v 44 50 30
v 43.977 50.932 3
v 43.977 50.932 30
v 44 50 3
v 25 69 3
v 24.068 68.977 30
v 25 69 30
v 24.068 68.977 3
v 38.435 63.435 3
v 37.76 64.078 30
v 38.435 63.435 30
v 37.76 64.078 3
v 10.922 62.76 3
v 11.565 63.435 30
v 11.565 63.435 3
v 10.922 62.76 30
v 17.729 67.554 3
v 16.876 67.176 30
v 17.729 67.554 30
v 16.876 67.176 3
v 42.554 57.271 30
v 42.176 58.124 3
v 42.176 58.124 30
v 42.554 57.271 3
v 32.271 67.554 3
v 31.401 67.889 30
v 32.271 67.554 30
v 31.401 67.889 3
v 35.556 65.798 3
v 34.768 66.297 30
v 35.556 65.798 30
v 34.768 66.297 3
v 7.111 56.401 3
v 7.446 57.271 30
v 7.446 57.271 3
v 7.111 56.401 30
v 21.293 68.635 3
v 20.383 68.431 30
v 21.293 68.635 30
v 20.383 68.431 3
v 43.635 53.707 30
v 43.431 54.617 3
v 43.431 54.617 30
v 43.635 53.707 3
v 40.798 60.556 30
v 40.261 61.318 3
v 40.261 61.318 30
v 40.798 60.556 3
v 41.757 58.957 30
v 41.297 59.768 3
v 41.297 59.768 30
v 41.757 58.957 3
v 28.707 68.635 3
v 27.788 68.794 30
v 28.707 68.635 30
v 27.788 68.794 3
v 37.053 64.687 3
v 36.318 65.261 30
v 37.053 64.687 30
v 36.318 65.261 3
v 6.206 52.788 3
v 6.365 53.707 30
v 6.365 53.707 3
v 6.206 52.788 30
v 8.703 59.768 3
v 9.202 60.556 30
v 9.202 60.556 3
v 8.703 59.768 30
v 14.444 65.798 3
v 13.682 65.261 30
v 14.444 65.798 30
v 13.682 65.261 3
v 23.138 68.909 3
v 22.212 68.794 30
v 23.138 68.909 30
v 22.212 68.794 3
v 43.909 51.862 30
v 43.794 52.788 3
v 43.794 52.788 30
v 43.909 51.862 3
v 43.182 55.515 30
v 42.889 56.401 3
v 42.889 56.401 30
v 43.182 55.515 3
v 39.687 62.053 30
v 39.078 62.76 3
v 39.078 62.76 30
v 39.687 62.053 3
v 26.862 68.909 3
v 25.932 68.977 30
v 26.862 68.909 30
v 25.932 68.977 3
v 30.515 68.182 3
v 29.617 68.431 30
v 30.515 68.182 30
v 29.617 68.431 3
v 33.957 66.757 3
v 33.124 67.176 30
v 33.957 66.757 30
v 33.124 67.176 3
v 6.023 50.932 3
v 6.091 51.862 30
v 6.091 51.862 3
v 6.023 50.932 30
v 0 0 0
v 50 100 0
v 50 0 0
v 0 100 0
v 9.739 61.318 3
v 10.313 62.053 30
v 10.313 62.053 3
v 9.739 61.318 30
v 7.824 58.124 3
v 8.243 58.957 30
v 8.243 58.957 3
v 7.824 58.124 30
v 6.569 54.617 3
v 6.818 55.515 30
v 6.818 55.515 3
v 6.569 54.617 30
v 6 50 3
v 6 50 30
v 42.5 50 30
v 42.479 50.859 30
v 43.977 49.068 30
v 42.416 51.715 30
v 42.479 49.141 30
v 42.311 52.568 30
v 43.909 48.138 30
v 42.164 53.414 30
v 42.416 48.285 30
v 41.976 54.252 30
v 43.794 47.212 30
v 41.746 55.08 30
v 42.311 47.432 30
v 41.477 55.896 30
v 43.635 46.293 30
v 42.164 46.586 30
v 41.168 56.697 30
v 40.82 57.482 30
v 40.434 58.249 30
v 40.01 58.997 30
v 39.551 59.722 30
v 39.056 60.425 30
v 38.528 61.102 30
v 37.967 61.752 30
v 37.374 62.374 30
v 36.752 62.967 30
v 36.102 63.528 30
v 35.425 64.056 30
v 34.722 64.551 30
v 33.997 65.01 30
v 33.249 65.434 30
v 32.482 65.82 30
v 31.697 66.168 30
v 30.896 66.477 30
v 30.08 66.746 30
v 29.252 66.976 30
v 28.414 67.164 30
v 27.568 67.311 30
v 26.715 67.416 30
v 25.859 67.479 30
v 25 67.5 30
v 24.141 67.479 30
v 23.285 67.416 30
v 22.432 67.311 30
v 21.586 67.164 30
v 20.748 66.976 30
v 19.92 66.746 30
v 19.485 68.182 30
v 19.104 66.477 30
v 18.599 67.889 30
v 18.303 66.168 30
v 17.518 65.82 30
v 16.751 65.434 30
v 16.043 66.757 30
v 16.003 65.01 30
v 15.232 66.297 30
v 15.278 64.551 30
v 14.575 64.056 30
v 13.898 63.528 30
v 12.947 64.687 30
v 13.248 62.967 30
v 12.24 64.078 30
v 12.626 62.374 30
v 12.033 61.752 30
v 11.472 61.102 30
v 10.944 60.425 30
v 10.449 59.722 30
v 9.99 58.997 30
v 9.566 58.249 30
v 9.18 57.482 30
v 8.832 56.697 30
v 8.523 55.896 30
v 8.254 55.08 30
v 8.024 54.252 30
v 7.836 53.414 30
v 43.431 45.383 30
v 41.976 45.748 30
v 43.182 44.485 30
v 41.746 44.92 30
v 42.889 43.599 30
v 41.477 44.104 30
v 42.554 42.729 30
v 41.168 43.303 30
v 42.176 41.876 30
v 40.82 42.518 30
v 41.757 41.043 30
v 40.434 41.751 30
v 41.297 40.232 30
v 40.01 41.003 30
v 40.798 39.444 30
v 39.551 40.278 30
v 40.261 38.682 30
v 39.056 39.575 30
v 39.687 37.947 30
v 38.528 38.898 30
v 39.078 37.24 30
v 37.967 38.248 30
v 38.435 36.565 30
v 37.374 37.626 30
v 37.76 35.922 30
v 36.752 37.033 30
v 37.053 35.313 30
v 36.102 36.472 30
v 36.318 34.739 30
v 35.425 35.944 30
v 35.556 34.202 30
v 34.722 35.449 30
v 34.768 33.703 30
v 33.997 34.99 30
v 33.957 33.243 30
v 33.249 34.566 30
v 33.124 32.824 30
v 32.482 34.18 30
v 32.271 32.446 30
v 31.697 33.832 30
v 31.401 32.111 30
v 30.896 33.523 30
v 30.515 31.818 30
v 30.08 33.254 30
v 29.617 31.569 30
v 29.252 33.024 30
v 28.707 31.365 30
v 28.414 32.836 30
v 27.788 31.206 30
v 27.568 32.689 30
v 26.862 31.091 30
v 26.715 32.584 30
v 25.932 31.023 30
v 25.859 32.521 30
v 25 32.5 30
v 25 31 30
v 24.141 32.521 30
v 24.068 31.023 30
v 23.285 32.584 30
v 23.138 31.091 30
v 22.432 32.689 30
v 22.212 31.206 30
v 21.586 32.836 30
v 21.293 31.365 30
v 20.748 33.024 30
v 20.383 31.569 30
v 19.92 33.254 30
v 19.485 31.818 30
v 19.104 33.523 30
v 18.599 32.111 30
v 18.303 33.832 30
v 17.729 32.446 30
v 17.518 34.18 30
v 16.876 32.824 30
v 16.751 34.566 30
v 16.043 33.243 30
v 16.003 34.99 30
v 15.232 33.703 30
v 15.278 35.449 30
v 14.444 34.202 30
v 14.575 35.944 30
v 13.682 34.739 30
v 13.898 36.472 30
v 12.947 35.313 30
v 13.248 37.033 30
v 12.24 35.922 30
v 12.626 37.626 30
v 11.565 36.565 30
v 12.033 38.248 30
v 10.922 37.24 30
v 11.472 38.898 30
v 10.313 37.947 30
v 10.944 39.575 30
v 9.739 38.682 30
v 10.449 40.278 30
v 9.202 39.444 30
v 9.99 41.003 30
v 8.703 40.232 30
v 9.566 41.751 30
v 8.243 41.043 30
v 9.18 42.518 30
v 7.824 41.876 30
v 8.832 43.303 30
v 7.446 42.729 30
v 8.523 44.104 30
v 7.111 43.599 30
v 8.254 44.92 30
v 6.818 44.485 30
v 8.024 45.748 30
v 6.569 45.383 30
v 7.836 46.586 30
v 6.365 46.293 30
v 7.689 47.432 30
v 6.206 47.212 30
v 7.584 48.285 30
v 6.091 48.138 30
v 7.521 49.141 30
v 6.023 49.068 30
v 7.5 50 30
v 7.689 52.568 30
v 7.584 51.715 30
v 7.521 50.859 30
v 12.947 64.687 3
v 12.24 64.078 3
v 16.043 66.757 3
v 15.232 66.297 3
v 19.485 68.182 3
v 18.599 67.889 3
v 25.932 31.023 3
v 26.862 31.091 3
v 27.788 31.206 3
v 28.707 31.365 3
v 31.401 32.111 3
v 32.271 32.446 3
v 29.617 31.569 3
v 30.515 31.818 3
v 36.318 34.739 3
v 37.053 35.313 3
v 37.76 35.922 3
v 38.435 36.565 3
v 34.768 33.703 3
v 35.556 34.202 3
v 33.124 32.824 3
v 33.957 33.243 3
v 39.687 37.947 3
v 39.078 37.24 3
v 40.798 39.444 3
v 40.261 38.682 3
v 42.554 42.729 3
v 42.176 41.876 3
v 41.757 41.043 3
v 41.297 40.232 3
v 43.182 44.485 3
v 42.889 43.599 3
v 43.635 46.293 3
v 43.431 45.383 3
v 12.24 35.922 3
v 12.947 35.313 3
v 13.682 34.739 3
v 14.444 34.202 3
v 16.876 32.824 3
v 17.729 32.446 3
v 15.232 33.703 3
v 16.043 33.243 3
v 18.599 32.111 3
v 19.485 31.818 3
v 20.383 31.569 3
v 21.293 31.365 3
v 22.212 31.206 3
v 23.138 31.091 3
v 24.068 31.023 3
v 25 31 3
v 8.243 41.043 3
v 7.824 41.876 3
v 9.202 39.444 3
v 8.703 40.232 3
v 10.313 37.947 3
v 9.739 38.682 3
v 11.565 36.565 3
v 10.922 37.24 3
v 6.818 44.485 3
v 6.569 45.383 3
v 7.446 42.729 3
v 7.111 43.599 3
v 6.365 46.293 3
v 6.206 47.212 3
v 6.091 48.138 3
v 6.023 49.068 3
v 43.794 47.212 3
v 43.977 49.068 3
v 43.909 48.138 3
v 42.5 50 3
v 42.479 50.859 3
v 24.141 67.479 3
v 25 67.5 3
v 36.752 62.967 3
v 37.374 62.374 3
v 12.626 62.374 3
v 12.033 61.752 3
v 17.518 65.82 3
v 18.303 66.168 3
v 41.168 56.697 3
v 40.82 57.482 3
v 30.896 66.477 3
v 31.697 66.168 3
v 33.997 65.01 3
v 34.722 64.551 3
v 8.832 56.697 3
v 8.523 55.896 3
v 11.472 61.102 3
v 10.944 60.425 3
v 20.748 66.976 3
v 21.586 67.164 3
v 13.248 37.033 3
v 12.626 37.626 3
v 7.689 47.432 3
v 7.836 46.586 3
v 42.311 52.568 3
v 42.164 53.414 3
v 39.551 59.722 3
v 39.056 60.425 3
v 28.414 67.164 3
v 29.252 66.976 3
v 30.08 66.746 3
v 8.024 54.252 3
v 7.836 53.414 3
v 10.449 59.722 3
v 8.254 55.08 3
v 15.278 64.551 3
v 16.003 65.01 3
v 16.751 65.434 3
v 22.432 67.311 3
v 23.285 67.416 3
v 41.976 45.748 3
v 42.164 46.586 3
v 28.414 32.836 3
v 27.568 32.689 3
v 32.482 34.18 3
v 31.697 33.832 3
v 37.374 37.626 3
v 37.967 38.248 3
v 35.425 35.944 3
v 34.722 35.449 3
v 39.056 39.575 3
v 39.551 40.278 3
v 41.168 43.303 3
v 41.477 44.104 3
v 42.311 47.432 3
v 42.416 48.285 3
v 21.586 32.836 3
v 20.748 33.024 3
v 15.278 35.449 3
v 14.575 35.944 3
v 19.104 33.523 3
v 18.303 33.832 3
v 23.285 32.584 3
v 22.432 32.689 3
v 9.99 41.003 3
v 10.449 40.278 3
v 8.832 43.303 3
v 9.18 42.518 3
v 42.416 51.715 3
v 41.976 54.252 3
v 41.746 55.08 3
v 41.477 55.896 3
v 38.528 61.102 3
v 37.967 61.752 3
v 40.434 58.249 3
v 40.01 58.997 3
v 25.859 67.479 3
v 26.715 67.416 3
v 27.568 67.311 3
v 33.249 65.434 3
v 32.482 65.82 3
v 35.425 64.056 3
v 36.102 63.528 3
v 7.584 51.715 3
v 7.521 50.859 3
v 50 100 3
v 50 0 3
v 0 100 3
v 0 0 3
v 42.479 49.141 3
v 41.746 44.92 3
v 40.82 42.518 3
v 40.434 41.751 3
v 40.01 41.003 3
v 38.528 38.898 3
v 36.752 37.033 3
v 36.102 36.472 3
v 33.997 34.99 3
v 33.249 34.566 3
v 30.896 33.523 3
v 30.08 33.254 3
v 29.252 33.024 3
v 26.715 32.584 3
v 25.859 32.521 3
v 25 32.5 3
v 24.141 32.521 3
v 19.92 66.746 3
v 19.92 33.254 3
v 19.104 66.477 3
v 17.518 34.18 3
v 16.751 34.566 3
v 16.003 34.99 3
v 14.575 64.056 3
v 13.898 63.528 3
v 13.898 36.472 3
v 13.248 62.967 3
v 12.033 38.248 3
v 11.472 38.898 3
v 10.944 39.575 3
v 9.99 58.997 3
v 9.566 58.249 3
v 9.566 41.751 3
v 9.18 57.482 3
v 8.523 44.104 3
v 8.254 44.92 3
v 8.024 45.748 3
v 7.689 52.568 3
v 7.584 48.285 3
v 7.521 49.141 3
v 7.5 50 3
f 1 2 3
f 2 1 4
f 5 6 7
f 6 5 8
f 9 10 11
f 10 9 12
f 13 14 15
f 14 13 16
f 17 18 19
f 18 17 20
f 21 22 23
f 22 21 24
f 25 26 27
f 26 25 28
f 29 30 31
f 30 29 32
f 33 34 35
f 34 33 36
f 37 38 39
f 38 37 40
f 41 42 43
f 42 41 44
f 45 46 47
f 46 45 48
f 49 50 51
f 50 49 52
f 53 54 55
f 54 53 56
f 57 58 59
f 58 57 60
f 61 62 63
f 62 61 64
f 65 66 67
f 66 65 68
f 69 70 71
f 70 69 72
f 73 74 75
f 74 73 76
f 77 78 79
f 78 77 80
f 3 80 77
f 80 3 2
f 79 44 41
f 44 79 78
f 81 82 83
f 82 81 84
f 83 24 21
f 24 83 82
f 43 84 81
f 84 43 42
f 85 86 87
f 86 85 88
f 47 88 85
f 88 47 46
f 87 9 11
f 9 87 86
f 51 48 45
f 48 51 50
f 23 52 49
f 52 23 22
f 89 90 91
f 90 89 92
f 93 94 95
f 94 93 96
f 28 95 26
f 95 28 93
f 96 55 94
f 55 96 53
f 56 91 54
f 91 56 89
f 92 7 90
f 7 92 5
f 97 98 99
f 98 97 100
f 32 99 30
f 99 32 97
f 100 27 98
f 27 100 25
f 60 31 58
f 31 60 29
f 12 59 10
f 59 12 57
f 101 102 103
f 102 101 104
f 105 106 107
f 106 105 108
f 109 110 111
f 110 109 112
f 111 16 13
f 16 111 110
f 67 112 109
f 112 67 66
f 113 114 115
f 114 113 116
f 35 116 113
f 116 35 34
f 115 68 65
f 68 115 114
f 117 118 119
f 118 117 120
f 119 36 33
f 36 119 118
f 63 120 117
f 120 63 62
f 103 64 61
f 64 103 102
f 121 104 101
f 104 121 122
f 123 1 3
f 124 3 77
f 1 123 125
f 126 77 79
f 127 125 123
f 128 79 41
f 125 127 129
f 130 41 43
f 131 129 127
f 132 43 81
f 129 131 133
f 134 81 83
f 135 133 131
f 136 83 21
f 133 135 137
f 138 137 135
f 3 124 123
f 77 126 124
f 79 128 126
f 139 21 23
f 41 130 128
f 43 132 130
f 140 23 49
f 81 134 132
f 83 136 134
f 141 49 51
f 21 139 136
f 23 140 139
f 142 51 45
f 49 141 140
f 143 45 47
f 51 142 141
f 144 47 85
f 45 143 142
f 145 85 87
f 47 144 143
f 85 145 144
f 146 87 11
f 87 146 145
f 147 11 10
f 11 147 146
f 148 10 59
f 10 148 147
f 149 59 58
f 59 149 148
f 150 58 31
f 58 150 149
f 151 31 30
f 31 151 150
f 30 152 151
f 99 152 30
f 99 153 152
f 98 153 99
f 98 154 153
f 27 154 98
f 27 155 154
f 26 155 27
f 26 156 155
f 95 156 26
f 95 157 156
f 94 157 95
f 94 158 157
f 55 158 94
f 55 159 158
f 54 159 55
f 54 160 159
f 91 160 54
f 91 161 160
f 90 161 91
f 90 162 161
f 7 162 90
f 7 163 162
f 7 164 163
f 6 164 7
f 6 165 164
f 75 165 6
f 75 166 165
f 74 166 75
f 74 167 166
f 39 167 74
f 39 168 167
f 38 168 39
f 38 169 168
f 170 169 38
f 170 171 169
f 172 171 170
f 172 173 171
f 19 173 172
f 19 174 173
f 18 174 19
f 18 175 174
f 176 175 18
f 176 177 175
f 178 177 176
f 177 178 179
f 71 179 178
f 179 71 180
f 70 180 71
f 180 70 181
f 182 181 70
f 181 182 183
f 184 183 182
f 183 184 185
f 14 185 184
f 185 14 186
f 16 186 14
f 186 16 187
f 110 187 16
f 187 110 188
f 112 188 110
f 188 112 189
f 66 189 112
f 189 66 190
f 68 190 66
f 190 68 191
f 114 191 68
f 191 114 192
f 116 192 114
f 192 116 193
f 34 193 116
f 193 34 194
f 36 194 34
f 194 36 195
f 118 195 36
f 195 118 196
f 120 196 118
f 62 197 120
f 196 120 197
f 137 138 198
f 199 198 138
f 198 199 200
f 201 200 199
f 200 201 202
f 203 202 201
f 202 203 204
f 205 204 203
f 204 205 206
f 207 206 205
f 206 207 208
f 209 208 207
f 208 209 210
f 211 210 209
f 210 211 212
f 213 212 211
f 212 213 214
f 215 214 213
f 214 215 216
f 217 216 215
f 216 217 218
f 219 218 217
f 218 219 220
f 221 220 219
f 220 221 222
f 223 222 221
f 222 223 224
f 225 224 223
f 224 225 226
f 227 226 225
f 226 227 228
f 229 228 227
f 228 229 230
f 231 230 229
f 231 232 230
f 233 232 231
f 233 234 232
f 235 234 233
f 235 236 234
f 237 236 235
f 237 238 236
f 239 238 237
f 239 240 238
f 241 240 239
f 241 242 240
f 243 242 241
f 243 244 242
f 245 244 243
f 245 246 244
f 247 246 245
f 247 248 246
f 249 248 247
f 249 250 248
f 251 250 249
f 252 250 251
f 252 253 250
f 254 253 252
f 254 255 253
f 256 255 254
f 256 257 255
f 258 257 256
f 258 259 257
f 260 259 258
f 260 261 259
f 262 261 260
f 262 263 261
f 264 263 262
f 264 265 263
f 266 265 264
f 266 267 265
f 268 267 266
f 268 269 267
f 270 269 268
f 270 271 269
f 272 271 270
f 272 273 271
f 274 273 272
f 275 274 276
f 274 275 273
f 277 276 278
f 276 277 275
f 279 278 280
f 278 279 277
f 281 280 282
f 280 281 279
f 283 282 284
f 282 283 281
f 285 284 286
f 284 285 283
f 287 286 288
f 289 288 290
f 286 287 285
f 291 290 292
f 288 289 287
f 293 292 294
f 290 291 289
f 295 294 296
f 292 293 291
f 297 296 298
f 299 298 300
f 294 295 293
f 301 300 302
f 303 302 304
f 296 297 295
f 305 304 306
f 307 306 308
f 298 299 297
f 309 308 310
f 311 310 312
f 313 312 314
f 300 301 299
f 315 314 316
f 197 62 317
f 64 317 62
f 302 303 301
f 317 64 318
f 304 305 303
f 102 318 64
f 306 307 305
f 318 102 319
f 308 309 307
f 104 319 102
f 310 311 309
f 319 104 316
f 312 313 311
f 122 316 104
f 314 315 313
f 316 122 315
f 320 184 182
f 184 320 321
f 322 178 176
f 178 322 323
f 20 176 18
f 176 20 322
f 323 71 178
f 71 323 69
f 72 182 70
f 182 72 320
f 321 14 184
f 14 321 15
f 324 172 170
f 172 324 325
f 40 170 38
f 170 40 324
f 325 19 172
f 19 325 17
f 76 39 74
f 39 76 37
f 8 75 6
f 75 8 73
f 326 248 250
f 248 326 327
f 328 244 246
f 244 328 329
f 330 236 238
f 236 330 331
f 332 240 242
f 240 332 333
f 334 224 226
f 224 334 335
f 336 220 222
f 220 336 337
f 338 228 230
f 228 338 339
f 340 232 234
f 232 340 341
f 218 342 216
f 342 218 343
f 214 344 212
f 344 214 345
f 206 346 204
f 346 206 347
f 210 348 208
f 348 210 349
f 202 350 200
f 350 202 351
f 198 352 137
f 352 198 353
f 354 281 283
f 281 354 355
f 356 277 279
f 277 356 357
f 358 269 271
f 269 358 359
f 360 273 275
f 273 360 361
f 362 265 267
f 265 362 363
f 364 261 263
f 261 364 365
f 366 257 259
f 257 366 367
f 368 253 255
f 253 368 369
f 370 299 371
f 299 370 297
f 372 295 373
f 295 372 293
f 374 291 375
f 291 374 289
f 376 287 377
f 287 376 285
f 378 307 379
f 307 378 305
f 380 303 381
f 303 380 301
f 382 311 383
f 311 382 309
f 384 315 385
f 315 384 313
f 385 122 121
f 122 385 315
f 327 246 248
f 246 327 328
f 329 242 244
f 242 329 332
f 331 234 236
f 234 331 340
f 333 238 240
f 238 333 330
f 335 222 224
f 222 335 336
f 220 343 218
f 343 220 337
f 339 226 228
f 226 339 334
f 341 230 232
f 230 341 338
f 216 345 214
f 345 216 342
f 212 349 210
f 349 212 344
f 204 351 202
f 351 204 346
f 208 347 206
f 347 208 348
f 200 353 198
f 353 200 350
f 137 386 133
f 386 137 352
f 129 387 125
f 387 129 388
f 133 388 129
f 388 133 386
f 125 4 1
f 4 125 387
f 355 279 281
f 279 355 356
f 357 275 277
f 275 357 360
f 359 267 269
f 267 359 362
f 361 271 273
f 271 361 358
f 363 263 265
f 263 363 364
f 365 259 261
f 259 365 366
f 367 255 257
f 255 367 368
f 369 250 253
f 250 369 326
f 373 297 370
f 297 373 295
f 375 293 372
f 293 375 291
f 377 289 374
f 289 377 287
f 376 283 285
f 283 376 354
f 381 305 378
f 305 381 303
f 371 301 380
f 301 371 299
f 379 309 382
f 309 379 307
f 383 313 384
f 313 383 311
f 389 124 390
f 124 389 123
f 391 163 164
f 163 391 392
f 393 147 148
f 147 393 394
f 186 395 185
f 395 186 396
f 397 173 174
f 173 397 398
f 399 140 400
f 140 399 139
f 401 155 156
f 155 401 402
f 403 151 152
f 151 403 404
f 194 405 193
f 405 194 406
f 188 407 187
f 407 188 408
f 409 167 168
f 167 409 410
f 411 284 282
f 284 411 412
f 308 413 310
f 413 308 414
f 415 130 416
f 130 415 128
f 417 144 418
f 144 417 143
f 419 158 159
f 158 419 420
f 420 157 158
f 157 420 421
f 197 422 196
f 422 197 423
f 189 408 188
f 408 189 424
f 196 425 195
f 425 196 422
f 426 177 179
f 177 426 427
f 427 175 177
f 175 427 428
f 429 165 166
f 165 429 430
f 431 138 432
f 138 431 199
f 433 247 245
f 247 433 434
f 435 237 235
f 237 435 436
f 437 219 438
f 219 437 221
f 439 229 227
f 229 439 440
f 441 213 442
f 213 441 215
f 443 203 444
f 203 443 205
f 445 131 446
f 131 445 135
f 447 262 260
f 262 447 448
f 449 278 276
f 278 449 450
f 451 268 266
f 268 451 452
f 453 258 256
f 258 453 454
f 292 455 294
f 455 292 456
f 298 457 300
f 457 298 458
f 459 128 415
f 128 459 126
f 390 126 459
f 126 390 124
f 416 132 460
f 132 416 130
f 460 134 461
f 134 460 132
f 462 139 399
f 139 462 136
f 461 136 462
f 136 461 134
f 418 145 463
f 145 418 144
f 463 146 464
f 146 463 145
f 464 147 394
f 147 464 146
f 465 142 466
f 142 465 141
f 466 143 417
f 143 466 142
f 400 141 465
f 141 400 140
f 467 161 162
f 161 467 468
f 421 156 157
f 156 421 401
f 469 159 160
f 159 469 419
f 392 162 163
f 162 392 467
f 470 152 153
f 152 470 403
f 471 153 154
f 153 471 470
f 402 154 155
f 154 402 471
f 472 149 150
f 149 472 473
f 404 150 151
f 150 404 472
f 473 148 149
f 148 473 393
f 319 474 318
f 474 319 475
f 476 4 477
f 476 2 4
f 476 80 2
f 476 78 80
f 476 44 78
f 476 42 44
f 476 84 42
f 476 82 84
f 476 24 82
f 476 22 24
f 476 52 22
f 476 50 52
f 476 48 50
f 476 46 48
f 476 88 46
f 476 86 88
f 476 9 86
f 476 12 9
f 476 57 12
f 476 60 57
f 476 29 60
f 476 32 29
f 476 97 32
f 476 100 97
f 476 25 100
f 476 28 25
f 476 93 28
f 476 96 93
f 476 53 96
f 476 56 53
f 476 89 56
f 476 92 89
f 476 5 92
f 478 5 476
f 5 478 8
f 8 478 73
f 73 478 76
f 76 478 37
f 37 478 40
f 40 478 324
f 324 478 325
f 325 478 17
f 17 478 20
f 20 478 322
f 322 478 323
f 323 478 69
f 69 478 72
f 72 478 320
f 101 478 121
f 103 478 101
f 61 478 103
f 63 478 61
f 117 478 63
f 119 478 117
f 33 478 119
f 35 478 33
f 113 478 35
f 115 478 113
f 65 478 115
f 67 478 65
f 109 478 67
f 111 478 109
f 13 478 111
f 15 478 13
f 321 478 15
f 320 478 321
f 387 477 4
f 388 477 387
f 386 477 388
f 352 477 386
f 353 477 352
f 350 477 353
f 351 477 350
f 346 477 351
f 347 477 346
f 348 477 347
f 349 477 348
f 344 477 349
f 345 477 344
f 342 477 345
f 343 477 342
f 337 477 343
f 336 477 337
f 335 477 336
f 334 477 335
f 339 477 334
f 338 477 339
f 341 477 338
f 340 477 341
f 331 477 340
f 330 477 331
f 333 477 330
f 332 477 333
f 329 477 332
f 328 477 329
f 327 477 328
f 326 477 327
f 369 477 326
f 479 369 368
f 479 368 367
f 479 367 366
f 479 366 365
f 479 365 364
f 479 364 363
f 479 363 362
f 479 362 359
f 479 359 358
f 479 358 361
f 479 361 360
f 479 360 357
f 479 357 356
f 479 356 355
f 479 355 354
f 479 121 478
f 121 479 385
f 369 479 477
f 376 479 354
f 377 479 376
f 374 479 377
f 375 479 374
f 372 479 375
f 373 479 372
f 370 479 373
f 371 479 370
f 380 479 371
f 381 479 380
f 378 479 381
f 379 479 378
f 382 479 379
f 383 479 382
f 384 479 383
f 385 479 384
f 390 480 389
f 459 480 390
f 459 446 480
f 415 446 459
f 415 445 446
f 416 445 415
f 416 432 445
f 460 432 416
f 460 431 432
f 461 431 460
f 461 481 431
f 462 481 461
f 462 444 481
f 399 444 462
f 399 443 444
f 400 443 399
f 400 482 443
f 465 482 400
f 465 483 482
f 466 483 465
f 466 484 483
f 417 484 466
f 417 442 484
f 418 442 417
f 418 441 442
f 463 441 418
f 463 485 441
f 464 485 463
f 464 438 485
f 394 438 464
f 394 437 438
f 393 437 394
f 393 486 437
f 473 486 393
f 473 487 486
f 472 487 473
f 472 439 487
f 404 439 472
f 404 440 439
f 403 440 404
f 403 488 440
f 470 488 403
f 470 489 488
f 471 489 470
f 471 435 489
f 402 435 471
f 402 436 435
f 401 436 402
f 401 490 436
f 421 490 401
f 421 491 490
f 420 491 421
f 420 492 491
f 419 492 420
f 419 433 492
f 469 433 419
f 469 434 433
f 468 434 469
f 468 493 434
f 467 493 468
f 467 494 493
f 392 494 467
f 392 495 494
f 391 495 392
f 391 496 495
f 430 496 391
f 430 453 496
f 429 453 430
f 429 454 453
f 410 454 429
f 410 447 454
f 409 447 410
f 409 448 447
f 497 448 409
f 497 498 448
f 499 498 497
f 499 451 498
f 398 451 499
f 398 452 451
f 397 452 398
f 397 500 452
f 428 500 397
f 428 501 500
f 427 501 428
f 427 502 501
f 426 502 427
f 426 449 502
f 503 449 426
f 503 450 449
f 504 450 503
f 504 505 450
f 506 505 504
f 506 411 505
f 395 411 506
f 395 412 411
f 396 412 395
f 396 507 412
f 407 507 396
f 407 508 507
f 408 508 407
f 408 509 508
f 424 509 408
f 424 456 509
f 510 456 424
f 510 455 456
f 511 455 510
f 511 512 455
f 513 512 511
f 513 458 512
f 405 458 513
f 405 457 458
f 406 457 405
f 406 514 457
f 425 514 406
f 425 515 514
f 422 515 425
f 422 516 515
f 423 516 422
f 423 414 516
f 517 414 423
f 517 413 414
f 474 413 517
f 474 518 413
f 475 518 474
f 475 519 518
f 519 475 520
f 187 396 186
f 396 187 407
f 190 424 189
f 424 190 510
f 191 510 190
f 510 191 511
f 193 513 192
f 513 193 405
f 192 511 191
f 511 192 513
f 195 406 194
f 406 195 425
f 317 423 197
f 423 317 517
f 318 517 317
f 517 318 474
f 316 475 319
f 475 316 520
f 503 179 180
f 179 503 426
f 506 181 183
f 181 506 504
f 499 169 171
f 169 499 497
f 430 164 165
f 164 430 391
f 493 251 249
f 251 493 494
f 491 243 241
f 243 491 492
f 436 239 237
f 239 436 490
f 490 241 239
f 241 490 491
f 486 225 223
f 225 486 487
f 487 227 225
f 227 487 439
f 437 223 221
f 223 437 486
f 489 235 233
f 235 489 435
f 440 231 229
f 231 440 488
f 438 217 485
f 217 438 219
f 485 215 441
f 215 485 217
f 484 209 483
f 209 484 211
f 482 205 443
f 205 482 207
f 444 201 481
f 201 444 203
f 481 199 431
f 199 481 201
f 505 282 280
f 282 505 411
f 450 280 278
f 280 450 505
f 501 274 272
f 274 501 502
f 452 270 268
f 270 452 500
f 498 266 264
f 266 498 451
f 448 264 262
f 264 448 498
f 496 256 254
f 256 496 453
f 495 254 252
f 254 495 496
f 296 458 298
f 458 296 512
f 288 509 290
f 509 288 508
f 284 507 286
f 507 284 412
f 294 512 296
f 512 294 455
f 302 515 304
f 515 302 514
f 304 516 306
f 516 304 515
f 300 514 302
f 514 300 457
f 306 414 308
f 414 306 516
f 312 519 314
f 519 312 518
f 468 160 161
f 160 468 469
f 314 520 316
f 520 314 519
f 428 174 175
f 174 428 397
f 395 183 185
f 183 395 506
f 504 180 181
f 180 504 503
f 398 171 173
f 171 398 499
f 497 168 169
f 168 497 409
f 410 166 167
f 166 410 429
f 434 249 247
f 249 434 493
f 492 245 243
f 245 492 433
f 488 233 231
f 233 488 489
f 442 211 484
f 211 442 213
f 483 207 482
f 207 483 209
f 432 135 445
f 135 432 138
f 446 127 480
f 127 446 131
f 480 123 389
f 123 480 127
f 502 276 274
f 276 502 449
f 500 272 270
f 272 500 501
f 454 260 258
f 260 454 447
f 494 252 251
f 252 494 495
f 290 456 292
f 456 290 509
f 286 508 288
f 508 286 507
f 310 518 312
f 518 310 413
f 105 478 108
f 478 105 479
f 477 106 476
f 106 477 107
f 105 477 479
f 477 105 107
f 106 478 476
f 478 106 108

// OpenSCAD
cube([50,100,3]);



difference(){
    translate([25,50,0])
    cylinder(h=30,d=38,$fn=128);
    
    translate([25,50,3])
    cylinder(h=30,d=35,$fn=128);
}
